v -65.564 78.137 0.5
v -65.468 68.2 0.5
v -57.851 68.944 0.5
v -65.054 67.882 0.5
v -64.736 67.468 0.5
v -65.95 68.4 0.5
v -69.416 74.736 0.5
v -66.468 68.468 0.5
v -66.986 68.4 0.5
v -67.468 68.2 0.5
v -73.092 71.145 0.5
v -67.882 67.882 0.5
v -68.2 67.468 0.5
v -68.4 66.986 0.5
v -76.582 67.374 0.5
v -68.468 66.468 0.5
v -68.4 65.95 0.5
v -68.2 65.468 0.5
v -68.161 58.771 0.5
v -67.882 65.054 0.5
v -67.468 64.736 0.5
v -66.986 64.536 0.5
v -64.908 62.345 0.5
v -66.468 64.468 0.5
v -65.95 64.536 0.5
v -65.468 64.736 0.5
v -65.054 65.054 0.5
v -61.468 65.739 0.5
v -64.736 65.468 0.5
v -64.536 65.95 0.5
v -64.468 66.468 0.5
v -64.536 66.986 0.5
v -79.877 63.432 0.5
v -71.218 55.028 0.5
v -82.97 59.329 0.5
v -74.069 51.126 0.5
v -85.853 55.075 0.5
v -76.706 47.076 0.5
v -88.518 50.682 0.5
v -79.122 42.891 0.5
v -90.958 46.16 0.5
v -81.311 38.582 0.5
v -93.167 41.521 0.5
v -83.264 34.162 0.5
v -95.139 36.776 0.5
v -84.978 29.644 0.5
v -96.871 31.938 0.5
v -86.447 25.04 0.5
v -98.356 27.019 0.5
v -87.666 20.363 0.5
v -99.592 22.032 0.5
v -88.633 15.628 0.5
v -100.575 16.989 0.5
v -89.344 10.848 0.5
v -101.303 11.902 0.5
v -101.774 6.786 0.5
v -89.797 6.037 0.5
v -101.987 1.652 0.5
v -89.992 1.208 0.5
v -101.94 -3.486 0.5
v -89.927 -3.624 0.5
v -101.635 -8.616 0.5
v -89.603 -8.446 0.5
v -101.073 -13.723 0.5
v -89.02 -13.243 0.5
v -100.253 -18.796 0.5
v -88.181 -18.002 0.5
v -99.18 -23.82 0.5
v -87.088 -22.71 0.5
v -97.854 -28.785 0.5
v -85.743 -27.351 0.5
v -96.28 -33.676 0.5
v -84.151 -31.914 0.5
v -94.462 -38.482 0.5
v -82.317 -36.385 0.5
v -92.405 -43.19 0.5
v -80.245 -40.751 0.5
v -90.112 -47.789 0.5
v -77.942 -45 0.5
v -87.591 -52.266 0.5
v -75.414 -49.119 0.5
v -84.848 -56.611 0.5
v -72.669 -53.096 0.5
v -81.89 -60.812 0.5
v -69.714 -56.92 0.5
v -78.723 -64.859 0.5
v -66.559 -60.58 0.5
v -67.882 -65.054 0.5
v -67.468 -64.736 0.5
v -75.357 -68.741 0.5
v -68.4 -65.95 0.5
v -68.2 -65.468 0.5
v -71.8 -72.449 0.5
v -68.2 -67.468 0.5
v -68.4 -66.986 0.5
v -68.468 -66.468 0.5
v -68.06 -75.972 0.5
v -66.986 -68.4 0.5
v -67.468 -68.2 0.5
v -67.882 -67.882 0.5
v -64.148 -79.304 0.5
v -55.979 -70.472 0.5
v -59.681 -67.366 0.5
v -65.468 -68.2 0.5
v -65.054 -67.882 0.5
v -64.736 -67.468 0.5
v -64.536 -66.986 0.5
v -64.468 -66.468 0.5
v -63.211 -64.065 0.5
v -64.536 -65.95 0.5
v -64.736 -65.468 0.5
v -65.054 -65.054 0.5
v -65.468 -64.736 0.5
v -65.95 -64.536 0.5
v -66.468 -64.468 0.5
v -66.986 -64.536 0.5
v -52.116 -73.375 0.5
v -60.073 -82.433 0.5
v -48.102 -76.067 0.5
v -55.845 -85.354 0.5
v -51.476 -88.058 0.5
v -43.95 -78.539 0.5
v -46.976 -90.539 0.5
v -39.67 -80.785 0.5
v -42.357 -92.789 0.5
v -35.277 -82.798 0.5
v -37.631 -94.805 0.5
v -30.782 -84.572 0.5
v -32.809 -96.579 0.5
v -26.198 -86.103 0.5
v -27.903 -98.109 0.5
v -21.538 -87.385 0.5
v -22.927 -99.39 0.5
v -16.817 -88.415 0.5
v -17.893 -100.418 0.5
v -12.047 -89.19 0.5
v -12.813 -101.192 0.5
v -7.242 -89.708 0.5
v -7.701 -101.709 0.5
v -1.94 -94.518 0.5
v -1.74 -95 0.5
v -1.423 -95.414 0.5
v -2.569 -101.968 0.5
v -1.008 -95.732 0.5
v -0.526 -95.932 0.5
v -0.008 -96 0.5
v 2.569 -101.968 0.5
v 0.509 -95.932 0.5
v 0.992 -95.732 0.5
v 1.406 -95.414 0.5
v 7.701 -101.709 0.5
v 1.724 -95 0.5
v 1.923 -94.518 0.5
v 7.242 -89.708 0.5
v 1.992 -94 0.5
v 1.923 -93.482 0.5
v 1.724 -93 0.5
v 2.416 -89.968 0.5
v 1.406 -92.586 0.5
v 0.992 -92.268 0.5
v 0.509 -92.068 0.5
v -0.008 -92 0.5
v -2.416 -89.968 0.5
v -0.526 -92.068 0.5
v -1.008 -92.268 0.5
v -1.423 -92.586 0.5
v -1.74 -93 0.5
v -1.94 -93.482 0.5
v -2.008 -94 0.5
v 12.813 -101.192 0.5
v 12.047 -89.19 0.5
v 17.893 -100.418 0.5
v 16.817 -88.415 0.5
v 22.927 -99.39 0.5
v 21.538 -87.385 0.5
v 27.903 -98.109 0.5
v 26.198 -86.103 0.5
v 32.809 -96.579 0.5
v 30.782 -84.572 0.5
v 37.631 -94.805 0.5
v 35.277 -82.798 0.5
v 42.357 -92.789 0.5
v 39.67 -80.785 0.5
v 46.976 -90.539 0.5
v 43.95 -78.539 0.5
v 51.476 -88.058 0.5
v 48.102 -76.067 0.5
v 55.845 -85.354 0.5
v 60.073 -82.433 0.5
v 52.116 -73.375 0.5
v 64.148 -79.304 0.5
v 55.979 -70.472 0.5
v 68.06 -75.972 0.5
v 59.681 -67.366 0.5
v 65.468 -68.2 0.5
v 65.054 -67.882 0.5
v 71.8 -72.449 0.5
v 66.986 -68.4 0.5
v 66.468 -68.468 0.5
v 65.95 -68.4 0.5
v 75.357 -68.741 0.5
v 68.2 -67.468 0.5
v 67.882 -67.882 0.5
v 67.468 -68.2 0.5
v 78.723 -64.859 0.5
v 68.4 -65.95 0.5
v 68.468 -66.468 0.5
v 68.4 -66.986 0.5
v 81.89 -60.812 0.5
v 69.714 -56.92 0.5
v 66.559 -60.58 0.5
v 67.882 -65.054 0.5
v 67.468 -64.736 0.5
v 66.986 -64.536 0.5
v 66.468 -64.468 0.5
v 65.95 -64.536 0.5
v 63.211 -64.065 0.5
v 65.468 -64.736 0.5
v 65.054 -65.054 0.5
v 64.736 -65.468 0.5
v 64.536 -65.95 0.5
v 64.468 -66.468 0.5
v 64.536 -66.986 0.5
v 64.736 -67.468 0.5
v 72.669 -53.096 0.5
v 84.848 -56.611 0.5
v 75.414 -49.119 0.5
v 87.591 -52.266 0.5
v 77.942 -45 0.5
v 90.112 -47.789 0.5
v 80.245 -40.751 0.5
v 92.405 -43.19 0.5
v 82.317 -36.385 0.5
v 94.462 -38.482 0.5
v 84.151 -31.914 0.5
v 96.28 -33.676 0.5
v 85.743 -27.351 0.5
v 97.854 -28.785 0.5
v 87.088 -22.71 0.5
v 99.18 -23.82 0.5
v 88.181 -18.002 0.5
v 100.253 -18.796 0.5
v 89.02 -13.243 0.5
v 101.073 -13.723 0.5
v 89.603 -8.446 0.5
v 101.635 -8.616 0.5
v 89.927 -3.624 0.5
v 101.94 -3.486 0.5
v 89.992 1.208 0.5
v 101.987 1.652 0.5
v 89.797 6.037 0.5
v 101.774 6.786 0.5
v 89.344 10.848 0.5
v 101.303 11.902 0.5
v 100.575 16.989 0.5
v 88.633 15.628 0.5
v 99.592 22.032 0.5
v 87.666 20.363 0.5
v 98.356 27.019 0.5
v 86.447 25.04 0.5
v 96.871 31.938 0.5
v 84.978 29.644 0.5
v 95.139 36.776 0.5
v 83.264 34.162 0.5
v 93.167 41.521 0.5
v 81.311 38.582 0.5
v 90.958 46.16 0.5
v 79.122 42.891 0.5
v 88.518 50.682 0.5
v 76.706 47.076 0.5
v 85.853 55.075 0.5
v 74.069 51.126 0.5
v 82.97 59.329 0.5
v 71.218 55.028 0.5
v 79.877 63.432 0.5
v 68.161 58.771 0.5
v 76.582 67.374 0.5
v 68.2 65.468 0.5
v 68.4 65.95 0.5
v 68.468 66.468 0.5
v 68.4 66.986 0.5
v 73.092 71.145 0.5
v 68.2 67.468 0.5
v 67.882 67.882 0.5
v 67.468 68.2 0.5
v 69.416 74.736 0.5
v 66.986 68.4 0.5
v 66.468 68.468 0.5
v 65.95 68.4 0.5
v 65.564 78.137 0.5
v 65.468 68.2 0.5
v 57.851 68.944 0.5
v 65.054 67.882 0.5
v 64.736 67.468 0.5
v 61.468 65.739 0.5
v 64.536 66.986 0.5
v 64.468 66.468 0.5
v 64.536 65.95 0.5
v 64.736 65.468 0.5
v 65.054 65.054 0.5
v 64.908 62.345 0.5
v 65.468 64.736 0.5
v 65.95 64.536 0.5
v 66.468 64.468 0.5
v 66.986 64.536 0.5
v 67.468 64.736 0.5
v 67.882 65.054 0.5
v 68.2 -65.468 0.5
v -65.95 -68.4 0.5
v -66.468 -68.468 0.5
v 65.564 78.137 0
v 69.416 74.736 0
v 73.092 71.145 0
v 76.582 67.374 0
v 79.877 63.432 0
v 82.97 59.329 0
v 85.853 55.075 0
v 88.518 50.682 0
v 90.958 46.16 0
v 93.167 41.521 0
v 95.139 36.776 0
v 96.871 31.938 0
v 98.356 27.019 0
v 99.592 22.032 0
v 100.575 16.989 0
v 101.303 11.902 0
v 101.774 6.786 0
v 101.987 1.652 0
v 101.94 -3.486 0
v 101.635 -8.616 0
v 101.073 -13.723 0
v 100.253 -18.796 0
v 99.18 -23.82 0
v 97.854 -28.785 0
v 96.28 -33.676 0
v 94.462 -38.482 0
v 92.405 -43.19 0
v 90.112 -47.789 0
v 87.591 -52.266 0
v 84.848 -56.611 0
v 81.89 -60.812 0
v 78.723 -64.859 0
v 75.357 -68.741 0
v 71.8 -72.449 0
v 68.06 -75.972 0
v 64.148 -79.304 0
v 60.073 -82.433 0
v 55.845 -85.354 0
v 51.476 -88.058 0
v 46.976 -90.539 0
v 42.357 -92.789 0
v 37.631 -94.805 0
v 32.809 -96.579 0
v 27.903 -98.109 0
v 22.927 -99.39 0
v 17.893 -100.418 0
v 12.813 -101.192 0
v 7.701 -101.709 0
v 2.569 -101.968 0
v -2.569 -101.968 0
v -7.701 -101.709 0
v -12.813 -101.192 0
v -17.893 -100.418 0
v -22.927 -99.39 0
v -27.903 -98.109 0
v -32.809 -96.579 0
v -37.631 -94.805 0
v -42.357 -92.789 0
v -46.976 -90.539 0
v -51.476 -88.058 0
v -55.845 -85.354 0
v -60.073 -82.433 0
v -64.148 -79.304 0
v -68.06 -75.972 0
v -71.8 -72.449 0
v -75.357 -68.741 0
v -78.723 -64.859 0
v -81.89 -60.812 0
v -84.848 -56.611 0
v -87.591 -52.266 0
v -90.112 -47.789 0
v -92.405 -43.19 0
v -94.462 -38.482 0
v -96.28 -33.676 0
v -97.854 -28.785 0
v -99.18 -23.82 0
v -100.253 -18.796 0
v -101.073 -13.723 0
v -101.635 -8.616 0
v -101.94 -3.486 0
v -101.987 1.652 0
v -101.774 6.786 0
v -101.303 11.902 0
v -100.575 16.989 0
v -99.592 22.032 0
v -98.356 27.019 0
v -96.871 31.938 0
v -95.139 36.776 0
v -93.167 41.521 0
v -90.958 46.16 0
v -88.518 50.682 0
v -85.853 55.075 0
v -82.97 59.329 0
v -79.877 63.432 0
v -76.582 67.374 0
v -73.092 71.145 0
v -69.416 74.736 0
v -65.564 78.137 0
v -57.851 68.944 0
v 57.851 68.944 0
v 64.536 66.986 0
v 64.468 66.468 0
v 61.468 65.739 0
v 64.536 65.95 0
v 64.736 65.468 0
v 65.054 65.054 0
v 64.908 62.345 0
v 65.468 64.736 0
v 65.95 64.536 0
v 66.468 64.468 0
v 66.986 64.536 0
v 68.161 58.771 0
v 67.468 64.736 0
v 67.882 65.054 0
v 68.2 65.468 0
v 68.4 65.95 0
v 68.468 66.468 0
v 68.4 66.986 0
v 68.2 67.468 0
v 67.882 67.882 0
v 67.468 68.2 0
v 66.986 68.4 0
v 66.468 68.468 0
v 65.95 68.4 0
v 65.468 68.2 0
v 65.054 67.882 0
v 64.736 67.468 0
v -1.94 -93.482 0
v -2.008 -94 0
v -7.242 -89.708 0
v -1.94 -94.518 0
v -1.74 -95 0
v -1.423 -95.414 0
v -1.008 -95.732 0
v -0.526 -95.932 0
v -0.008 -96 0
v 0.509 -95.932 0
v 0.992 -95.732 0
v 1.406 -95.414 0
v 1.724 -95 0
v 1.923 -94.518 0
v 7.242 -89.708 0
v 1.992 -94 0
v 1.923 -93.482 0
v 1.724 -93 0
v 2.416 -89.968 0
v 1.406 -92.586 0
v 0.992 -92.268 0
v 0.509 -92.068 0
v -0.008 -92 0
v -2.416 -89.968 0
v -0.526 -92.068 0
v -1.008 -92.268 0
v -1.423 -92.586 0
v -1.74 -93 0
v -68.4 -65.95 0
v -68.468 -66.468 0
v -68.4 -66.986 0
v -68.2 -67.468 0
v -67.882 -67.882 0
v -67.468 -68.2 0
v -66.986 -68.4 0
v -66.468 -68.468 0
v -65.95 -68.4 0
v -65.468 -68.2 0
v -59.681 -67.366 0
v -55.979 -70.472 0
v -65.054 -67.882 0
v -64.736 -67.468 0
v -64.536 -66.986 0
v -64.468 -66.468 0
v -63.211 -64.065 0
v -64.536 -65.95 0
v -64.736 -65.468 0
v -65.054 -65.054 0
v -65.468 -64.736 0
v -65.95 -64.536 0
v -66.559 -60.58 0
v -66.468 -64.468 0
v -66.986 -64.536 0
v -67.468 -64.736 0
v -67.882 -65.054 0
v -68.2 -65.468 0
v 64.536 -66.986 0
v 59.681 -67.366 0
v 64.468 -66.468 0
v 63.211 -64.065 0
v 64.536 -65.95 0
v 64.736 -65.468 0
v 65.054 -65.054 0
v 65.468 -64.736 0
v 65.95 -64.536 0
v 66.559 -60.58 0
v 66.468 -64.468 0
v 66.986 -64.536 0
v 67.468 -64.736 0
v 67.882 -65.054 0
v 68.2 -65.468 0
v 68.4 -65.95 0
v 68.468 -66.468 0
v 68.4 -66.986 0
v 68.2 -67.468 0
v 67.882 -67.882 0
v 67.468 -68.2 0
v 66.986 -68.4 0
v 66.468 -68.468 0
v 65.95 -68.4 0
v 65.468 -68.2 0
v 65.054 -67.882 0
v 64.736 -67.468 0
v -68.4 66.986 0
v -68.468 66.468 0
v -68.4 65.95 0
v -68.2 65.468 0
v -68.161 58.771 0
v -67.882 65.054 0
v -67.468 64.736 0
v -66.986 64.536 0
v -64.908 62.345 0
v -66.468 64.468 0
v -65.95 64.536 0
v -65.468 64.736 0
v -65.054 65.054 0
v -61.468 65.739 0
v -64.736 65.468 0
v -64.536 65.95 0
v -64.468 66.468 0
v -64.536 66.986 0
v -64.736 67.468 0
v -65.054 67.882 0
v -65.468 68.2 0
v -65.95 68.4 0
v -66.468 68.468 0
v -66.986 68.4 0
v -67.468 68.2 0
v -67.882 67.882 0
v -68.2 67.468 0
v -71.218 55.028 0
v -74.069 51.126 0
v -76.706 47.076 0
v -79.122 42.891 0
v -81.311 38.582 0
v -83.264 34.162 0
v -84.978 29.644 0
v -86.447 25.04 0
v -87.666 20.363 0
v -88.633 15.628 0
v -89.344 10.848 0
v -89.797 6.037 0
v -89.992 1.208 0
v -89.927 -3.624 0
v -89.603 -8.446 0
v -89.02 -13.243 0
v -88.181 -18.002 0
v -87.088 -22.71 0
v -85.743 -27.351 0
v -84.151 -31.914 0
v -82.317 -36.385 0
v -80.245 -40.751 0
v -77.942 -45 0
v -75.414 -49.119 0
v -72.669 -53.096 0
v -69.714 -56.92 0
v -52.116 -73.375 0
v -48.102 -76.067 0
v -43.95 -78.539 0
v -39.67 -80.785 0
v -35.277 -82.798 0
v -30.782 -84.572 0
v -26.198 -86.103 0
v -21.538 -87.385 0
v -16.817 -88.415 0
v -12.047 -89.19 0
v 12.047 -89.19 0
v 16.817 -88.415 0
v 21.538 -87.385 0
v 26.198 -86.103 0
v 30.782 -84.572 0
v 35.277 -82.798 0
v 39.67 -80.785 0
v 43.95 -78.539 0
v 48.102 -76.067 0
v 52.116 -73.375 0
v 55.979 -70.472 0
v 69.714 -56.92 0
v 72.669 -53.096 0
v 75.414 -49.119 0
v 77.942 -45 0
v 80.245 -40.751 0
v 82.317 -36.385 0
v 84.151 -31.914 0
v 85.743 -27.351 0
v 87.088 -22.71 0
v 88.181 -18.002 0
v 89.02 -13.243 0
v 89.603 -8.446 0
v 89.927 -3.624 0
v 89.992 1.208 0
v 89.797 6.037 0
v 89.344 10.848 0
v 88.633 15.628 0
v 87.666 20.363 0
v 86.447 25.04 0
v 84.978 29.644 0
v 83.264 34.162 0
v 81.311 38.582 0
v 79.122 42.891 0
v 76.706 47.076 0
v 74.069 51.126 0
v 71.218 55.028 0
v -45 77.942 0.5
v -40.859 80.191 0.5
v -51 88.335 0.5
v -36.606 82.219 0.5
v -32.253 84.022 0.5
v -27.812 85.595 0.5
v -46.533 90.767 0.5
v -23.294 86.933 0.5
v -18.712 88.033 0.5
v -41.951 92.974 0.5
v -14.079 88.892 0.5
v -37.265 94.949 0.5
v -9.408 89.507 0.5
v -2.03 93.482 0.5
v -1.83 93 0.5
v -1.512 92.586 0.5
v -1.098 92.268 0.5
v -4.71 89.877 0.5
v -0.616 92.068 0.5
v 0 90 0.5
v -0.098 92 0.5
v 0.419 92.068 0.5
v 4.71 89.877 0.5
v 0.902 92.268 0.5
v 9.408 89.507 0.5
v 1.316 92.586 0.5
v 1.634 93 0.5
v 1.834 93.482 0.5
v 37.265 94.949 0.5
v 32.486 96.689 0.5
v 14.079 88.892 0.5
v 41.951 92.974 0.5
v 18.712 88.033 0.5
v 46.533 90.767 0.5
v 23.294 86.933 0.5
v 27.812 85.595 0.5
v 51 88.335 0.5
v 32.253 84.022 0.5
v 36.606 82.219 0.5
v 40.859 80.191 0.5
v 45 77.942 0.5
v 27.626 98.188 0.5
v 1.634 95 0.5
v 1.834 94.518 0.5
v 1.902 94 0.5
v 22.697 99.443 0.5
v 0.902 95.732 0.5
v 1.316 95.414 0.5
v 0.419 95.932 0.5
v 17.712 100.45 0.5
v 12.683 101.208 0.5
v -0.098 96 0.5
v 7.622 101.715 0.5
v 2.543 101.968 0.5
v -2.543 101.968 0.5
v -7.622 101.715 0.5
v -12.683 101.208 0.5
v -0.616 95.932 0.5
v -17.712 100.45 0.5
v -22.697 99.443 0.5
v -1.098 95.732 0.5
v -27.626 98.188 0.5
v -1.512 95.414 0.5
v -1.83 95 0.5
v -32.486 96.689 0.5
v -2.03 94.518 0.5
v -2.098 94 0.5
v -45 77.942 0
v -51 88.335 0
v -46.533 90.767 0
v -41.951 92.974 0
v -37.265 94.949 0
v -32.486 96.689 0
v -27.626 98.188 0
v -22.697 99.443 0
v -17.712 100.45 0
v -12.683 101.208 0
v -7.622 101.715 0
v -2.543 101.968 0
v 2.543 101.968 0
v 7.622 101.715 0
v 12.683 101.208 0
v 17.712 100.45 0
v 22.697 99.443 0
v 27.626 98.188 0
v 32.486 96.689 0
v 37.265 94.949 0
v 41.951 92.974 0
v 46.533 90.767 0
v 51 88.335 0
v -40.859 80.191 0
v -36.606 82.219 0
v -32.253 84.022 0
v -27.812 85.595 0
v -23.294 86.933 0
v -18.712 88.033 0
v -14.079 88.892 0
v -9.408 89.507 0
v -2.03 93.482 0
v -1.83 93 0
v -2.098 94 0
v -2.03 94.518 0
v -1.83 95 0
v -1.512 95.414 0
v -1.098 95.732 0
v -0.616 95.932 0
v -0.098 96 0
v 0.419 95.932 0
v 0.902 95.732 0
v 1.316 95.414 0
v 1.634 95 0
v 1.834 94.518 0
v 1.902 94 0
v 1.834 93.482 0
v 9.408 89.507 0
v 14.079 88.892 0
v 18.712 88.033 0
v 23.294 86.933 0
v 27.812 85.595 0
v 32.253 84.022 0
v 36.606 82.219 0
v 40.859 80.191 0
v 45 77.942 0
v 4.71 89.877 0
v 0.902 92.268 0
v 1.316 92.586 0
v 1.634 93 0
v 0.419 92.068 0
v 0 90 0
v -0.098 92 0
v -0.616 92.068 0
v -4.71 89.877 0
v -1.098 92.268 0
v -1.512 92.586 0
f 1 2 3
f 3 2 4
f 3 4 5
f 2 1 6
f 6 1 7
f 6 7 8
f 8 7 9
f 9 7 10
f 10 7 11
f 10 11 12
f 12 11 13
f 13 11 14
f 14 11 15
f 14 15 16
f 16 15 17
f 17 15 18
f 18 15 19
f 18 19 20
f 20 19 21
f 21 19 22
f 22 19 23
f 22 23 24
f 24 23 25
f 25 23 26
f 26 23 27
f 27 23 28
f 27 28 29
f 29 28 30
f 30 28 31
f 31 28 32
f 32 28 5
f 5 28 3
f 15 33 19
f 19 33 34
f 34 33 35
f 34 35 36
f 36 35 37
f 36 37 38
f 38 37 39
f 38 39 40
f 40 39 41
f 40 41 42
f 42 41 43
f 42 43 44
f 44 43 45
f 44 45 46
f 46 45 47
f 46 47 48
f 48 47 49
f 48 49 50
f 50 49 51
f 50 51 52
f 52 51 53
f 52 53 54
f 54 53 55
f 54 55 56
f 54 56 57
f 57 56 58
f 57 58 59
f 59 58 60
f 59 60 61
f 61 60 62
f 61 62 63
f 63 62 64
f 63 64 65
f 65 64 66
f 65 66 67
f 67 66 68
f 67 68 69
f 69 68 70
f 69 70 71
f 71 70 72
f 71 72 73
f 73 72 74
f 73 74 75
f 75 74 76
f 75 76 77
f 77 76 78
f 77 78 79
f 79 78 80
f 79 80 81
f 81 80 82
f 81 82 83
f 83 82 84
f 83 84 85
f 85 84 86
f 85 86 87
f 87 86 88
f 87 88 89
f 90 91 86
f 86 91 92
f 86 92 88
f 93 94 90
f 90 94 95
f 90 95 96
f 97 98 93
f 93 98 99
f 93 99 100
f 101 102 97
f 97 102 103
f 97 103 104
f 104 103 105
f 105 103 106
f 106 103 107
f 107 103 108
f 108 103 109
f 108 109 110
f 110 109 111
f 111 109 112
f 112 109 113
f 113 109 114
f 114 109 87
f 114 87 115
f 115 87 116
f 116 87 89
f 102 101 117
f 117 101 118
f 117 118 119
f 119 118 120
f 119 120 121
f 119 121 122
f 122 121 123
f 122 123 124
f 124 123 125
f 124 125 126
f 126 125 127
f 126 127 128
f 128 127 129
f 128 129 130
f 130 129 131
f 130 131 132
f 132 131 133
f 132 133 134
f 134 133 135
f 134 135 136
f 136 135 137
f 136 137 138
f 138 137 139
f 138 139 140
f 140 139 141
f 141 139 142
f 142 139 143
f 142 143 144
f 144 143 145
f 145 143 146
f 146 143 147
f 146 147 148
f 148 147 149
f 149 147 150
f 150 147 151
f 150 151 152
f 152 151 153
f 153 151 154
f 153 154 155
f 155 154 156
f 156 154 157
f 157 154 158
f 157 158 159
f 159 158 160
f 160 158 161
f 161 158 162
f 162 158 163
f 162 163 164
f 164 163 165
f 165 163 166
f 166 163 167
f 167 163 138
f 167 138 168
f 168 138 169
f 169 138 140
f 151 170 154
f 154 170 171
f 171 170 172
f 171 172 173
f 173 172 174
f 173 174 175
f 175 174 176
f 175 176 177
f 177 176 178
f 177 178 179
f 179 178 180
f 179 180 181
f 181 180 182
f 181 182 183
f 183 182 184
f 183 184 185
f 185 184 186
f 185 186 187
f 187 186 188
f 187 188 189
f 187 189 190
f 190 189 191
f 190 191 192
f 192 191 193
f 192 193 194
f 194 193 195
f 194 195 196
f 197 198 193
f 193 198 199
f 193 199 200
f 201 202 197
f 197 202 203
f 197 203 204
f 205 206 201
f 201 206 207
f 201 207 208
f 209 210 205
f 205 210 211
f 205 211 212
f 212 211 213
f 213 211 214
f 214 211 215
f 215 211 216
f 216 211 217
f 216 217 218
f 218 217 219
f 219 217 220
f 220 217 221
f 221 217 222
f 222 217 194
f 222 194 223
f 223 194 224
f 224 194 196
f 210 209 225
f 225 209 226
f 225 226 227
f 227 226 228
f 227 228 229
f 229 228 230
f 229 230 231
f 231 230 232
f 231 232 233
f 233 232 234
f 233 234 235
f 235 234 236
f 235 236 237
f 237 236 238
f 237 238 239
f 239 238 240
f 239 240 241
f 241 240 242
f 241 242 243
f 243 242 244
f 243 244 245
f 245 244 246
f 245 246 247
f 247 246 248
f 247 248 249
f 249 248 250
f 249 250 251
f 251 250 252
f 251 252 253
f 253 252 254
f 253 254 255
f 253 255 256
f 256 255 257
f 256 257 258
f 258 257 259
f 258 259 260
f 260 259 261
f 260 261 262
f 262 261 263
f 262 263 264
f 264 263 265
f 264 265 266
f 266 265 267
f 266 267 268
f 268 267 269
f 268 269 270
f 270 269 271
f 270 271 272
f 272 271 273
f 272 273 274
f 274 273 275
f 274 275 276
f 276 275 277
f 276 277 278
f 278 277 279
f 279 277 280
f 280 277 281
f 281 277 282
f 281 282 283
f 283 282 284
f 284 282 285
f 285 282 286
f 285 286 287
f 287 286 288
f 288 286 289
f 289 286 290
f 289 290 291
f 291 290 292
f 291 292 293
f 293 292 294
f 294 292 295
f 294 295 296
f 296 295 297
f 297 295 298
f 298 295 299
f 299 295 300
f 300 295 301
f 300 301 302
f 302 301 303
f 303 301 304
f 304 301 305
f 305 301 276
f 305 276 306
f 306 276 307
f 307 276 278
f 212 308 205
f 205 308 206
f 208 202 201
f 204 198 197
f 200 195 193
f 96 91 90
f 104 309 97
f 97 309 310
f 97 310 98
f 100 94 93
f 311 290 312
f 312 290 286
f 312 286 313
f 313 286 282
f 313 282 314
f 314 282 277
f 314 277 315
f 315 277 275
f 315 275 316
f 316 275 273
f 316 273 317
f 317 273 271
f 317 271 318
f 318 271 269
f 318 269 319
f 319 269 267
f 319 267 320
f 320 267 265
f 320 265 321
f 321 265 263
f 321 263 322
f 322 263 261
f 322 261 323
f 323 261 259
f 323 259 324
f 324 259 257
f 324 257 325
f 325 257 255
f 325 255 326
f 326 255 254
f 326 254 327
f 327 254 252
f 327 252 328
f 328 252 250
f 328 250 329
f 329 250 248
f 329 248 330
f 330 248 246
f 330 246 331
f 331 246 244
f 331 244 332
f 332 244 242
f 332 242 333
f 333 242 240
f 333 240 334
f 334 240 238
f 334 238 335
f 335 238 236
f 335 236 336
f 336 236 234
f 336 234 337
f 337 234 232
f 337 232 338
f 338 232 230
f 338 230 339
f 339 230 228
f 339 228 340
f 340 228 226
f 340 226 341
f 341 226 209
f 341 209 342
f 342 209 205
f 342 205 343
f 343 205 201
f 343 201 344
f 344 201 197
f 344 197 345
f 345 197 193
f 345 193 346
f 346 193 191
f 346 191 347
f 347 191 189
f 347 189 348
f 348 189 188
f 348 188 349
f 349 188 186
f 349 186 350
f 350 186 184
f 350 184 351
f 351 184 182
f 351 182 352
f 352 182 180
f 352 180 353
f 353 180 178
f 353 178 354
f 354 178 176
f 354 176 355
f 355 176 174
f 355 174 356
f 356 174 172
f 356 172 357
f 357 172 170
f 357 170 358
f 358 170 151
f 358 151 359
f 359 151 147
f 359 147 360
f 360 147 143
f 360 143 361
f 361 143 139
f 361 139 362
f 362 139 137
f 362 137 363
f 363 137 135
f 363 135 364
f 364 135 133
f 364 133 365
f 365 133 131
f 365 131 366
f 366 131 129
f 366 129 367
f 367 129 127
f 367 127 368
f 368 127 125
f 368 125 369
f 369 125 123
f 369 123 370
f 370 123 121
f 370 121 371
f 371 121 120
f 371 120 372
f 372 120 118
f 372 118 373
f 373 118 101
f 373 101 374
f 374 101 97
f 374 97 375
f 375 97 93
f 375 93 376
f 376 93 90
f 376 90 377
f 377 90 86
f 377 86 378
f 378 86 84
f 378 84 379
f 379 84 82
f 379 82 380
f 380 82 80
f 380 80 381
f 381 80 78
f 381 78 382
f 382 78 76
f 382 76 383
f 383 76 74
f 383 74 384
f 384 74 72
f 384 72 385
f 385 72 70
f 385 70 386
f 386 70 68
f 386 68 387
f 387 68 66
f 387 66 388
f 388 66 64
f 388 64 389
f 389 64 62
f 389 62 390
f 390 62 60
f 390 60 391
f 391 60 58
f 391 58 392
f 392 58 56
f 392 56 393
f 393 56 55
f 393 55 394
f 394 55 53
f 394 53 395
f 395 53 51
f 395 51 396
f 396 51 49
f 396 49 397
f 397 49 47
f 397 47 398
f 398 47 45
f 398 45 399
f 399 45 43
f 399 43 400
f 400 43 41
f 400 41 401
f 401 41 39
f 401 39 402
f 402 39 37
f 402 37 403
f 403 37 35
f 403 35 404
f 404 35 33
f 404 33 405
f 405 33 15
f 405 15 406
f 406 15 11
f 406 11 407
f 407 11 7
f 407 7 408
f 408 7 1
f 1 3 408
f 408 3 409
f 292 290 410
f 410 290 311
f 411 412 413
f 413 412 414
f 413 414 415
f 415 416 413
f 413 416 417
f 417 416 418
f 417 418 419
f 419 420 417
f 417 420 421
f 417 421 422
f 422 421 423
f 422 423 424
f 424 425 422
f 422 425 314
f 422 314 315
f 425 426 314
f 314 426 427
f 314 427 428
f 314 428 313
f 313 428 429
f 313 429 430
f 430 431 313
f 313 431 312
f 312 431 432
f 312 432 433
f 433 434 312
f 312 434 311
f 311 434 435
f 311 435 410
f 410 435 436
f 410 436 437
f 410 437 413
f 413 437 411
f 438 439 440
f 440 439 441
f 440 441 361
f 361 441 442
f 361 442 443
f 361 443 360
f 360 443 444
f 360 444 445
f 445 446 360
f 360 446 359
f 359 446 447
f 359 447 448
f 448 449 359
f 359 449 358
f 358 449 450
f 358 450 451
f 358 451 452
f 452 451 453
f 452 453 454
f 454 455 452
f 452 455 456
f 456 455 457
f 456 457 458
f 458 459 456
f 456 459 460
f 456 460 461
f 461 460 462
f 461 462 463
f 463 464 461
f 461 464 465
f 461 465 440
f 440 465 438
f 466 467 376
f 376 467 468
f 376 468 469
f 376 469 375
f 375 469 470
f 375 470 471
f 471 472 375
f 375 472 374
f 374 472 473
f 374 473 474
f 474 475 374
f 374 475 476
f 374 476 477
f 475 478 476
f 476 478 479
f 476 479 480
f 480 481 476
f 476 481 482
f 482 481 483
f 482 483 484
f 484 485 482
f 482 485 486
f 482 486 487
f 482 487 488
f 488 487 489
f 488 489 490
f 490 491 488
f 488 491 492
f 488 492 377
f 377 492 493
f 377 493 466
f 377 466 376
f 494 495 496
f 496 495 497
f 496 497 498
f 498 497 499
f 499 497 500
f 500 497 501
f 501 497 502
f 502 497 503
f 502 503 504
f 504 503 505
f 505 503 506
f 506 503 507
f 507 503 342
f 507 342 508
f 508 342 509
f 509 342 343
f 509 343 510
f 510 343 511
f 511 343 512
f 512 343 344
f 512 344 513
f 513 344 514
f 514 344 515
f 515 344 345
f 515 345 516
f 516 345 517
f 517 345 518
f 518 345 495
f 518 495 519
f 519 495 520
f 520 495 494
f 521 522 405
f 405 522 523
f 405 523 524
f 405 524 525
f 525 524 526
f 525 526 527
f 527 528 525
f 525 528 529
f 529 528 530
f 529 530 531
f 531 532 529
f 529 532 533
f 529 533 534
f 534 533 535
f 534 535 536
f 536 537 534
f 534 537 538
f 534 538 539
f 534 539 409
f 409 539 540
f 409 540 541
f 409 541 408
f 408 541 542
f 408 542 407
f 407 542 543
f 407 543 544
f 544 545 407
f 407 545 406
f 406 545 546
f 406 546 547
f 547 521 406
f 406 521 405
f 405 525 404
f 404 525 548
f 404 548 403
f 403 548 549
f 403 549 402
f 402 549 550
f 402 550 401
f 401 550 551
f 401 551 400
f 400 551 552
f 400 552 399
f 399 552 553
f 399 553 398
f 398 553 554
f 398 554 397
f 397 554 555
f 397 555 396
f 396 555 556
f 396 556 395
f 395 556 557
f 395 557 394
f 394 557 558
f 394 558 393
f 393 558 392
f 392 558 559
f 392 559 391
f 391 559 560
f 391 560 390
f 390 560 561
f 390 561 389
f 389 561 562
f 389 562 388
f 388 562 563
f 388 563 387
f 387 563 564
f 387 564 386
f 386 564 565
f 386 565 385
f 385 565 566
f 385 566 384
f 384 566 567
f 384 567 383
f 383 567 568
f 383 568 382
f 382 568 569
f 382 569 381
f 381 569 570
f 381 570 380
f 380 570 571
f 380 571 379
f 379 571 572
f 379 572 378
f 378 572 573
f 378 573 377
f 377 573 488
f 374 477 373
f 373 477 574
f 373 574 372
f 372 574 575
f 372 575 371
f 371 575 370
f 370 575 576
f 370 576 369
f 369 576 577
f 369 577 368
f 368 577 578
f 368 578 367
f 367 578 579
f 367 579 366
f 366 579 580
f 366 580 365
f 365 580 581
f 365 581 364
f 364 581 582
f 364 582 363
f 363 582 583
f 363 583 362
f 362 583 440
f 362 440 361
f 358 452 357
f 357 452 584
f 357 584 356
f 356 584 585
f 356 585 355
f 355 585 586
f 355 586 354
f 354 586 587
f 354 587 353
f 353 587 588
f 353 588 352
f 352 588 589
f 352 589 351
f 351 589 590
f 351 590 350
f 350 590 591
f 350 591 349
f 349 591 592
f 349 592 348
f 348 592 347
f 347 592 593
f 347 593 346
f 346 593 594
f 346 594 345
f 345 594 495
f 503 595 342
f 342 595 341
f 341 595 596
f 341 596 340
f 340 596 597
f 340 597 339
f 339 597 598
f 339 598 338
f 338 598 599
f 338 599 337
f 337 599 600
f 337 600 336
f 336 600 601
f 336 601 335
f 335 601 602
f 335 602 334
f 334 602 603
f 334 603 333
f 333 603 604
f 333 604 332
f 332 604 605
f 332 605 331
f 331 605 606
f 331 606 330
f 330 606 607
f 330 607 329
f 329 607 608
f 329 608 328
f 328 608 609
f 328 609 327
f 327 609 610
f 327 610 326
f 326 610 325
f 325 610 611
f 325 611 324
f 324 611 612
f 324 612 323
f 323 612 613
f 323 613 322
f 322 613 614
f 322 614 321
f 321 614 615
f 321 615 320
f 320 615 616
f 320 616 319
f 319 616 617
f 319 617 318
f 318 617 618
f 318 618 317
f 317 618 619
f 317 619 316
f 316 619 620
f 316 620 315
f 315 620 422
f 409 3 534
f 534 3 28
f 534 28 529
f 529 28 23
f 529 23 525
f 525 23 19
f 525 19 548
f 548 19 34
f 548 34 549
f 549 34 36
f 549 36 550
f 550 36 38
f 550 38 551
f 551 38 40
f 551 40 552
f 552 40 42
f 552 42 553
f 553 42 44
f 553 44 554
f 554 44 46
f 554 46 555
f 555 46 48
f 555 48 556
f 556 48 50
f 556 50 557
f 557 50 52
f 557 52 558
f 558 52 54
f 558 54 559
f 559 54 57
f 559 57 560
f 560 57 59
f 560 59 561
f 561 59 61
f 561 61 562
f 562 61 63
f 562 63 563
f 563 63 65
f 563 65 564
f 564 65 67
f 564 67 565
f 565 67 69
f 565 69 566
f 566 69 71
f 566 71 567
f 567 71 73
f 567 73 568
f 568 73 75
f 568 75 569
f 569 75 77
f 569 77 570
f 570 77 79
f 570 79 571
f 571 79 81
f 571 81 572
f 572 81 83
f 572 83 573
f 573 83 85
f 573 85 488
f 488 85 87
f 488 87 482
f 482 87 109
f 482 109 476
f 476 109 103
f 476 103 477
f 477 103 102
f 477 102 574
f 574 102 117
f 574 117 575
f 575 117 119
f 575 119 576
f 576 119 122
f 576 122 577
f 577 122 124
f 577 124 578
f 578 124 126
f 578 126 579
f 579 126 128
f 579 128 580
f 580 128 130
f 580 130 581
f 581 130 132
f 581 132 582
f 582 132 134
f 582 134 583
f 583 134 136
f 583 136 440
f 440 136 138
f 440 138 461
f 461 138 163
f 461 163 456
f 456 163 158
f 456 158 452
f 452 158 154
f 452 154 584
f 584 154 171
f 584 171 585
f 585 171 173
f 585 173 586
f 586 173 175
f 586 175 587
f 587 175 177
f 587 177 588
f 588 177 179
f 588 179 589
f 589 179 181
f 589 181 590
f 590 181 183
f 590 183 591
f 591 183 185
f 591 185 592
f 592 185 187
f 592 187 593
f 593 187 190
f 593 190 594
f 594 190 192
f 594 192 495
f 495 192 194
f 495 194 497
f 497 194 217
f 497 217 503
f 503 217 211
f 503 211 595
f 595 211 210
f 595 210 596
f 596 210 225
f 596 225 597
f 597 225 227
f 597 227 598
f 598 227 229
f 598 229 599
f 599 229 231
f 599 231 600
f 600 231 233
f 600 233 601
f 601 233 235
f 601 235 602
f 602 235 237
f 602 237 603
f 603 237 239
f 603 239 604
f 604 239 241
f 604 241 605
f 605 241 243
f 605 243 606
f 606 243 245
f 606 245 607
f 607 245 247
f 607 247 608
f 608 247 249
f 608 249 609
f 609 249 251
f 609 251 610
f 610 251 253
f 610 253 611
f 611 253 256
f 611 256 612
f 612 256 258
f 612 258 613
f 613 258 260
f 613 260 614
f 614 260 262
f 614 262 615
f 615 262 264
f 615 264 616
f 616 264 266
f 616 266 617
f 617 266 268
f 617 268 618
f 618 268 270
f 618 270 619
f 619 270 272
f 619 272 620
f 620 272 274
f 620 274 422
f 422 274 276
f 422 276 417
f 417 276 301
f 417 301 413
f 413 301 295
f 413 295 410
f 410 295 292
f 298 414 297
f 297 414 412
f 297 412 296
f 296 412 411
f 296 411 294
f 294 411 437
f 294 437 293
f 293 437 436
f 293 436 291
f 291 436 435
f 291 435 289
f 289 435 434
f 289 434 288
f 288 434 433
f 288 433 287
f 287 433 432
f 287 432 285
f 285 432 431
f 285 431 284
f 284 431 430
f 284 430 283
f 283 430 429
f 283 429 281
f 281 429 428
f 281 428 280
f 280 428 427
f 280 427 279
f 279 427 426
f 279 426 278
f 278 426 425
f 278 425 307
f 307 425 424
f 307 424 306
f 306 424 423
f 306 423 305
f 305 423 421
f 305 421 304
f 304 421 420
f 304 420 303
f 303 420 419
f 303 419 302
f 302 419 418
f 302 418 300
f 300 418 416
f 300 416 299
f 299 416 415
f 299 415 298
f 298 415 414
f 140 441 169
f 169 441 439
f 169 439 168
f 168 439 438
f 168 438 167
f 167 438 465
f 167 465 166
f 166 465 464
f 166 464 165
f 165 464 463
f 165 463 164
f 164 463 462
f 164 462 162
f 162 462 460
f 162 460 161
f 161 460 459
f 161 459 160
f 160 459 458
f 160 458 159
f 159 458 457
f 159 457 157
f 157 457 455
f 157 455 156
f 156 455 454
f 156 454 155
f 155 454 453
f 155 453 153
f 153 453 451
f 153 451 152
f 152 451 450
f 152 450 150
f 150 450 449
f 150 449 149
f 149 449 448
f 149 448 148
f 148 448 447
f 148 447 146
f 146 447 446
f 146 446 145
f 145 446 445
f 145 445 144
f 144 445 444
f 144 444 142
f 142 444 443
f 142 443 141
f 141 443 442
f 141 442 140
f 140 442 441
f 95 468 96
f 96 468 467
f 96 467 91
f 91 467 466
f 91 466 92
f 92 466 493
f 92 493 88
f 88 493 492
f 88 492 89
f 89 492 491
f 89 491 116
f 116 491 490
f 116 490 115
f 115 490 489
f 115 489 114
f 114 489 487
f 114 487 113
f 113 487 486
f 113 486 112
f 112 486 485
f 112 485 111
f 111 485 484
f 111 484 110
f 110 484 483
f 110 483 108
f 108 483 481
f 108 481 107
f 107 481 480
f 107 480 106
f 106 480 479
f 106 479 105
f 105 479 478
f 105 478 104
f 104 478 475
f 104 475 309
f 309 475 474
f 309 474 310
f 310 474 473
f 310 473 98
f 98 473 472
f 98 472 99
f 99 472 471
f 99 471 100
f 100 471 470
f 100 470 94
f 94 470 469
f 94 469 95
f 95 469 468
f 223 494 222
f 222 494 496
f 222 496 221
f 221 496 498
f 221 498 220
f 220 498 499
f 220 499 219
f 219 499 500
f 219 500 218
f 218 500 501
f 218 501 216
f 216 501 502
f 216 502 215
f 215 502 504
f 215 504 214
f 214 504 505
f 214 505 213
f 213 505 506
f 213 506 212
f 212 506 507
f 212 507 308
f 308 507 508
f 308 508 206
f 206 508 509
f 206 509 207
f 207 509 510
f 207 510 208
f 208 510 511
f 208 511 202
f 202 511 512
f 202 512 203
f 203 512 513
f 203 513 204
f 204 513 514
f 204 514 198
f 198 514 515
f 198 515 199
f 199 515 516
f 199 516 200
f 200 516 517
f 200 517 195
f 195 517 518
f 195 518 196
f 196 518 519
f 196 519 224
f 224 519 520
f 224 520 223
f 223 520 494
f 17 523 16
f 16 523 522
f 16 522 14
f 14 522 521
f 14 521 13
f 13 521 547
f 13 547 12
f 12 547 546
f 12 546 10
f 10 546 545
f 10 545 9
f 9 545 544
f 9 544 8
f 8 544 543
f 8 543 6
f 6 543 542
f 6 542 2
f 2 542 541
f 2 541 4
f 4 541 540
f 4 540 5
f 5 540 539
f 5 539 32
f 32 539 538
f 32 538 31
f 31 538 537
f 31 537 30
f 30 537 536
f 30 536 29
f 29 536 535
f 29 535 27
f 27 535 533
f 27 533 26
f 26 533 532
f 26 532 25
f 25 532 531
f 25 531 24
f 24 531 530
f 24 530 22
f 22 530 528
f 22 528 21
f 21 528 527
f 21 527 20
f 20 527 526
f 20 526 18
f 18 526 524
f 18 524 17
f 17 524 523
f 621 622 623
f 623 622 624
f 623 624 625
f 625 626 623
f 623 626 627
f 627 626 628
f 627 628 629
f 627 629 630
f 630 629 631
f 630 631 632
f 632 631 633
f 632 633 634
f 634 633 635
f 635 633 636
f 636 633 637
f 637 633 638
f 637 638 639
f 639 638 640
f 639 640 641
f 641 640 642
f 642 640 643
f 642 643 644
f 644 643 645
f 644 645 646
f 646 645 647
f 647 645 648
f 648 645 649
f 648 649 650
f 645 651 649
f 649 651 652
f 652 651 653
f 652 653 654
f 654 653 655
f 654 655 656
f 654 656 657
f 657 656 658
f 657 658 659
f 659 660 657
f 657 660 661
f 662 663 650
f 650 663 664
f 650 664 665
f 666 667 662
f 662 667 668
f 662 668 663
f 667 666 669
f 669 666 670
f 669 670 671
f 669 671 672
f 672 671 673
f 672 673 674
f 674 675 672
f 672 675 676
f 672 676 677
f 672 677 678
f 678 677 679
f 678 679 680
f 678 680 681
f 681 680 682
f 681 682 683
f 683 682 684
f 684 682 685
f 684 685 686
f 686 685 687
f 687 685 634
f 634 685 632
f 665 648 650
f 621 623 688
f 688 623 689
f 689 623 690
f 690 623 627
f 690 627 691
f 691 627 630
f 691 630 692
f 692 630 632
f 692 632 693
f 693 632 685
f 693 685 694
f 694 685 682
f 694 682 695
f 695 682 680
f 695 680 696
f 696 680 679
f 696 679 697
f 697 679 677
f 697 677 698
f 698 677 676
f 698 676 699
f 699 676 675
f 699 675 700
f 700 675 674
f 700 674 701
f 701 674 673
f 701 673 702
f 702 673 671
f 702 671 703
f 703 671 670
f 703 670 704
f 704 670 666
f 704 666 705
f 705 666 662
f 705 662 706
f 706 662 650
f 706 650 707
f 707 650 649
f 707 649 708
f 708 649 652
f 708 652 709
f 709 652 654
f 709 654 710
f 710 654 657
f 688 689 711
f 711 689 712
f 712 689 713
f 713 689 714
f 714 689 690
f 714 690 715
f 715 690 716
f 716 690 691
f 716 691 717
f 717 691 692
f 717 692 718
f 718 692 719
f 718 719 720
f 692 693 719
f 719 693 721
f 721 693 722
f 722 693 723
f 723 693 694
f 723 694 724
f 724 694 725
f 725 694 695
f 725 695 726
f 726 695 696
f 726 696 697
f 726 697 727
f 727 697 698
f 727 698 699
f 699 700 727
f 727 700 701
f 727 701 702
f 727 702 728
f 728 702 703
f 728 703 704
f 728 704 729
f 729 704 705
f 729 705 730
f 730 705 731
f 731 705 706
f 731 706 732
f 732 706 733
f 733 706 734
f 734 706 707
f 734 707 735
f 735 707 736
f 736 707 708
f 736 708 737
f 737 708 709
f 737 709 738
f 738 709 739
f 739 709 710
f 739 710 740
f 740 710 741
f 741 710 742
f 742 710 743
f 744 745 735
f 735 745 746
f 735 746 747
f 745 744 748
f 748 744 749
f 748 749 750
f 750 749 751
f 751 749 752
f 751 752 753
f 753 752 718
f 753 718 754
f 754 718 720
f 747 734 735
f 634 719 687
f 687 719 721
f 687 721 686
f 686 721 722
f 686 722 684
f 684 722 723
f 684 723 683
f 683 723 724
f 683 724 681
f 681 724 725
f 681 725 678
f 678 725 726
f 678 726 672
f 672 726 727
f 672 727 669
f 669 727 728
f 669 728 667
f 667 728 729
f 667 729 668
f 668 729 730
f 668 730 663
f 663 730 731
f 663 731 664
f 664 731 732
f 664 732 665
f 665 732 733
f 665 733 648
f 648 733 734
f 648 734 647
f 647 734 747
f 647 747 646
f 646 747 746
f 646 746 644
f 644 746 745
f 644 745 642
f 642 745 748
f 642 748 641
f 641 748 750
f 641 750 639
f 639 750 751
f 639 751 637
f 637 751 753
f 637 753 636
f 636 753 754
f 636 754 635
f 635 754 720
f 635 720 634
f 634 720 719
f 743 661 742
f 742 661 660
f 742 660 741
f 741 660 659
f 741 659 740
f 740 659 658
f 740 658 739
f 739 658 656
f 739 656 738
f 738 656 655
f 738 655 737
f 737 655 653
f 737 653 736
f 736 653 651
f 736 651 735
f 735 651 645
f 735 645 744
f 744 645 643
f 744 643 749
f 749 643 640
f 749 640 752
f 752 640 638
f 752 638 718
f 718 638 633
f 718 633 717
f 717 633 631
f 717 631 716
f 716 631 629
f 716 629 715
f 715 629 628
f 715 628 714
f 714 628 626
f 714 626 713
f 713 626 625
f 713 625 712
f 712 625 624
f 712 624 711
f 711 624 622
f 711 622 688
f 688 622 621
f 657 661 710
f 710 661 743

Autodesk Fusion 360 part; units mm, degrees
sketch "Sketch1" plane through (0, 0, 0) normal (0, 0, 1) x (1, 0, 0)
  circle A0 centre (0, 0) radius 102
  circle A1 centre (0, 0) radius 90
  circle A2 centre (0, 0) radius 94 construction
  circle A3 centre (-0.0983, 93.9999) radius 2
  circle A4 centre (-0.0084, -94) radius 2
  line L0 (0, 0) -> (66.468, 66.468) construction
  line L1 (0, 0) -> (94, 0) construction
  line L2 (-160, 0) -> (153.4074, 0) construction
  line L3 (0, 0) -> (-66.468, 66.468) construction
  line L4 (0, 0) -> (94, 0) construction
  circle A5 centre (-66.468, 66.468) radius 2
  circle A6 centre (66.468, 66.468) radius 2
  circle A7 centre (-66.468, -66.468) radius 2
  circle A8 centre (66.468, -66.468) radius 2
  dimension "d1" = 204
  dimension "d2" = 180
  dimension "d3" = 188
  dimension "d4" = 4
  dimension "d5" = 4
  dimension "d6" = 45
  dimension "d7" = 135
  dimension "d8" = 4
  dimension "d9" = 4
extrude "Extrude1" add sketch "Sketch1" along normal blind 1 makes body 1
sketch "Sketch2" plane through (0, 0, 1) normal (0, 0, 1) x (-1, 0, 0)
  circle A0 centre (66.468, -66.468) radius 2
  circle A1 centre (0.0983, -93.9999) radius 2
  circle A2 centre (-66.468, 66.468) radius 2
  circle A3 centre (66.468, 66.468) radius 2
  circle A4 centre (0, 0) radius 90
  circle A5 centre (0.0084, 94) radius 2
  circle A6 centre (-66.468, -66.468) radius 2
  circle A7 centre (0, 0) radius 102
  line L0 (57.8509, -68.944) -> (65.5643, -78.1365)
  line L1 (0, 0) -> (102, 0) construction
  line L2 (45, -77.9423) -> (51, -88.3346)
  line L3 (0, 0) -> (102, 0) construction
  line L4 (-45, -77.9423) -> (-51, -88.3346)
  line L5 (0, 0) -> (102, 0) construction
  line L6 (-57.8509, -68.944) -> (-65.5643, -78.1365)
  line L7 (0, 0) -> (102, 0) construction
  dimension "d12" = 50
  dimension "d13" = 60
  dimension "d14" = 120
  dimension "d15" = 130
extrude "Extrude2" cut sketch "Sketch2" against normal blind 2 contours A4 A7 L4 L6 | A4 A7 L0 L2 bodies 1 makes body 2 at (-40.3818, 89.0208, 0)
extrude "Extrude3" cut 2 faces at (75.256, -58.3928, 1) (-40.3818, 89.0208, 1) along direction (0, 0, -1) blind 0.5 on bodies 1 2 bodies 1 2
